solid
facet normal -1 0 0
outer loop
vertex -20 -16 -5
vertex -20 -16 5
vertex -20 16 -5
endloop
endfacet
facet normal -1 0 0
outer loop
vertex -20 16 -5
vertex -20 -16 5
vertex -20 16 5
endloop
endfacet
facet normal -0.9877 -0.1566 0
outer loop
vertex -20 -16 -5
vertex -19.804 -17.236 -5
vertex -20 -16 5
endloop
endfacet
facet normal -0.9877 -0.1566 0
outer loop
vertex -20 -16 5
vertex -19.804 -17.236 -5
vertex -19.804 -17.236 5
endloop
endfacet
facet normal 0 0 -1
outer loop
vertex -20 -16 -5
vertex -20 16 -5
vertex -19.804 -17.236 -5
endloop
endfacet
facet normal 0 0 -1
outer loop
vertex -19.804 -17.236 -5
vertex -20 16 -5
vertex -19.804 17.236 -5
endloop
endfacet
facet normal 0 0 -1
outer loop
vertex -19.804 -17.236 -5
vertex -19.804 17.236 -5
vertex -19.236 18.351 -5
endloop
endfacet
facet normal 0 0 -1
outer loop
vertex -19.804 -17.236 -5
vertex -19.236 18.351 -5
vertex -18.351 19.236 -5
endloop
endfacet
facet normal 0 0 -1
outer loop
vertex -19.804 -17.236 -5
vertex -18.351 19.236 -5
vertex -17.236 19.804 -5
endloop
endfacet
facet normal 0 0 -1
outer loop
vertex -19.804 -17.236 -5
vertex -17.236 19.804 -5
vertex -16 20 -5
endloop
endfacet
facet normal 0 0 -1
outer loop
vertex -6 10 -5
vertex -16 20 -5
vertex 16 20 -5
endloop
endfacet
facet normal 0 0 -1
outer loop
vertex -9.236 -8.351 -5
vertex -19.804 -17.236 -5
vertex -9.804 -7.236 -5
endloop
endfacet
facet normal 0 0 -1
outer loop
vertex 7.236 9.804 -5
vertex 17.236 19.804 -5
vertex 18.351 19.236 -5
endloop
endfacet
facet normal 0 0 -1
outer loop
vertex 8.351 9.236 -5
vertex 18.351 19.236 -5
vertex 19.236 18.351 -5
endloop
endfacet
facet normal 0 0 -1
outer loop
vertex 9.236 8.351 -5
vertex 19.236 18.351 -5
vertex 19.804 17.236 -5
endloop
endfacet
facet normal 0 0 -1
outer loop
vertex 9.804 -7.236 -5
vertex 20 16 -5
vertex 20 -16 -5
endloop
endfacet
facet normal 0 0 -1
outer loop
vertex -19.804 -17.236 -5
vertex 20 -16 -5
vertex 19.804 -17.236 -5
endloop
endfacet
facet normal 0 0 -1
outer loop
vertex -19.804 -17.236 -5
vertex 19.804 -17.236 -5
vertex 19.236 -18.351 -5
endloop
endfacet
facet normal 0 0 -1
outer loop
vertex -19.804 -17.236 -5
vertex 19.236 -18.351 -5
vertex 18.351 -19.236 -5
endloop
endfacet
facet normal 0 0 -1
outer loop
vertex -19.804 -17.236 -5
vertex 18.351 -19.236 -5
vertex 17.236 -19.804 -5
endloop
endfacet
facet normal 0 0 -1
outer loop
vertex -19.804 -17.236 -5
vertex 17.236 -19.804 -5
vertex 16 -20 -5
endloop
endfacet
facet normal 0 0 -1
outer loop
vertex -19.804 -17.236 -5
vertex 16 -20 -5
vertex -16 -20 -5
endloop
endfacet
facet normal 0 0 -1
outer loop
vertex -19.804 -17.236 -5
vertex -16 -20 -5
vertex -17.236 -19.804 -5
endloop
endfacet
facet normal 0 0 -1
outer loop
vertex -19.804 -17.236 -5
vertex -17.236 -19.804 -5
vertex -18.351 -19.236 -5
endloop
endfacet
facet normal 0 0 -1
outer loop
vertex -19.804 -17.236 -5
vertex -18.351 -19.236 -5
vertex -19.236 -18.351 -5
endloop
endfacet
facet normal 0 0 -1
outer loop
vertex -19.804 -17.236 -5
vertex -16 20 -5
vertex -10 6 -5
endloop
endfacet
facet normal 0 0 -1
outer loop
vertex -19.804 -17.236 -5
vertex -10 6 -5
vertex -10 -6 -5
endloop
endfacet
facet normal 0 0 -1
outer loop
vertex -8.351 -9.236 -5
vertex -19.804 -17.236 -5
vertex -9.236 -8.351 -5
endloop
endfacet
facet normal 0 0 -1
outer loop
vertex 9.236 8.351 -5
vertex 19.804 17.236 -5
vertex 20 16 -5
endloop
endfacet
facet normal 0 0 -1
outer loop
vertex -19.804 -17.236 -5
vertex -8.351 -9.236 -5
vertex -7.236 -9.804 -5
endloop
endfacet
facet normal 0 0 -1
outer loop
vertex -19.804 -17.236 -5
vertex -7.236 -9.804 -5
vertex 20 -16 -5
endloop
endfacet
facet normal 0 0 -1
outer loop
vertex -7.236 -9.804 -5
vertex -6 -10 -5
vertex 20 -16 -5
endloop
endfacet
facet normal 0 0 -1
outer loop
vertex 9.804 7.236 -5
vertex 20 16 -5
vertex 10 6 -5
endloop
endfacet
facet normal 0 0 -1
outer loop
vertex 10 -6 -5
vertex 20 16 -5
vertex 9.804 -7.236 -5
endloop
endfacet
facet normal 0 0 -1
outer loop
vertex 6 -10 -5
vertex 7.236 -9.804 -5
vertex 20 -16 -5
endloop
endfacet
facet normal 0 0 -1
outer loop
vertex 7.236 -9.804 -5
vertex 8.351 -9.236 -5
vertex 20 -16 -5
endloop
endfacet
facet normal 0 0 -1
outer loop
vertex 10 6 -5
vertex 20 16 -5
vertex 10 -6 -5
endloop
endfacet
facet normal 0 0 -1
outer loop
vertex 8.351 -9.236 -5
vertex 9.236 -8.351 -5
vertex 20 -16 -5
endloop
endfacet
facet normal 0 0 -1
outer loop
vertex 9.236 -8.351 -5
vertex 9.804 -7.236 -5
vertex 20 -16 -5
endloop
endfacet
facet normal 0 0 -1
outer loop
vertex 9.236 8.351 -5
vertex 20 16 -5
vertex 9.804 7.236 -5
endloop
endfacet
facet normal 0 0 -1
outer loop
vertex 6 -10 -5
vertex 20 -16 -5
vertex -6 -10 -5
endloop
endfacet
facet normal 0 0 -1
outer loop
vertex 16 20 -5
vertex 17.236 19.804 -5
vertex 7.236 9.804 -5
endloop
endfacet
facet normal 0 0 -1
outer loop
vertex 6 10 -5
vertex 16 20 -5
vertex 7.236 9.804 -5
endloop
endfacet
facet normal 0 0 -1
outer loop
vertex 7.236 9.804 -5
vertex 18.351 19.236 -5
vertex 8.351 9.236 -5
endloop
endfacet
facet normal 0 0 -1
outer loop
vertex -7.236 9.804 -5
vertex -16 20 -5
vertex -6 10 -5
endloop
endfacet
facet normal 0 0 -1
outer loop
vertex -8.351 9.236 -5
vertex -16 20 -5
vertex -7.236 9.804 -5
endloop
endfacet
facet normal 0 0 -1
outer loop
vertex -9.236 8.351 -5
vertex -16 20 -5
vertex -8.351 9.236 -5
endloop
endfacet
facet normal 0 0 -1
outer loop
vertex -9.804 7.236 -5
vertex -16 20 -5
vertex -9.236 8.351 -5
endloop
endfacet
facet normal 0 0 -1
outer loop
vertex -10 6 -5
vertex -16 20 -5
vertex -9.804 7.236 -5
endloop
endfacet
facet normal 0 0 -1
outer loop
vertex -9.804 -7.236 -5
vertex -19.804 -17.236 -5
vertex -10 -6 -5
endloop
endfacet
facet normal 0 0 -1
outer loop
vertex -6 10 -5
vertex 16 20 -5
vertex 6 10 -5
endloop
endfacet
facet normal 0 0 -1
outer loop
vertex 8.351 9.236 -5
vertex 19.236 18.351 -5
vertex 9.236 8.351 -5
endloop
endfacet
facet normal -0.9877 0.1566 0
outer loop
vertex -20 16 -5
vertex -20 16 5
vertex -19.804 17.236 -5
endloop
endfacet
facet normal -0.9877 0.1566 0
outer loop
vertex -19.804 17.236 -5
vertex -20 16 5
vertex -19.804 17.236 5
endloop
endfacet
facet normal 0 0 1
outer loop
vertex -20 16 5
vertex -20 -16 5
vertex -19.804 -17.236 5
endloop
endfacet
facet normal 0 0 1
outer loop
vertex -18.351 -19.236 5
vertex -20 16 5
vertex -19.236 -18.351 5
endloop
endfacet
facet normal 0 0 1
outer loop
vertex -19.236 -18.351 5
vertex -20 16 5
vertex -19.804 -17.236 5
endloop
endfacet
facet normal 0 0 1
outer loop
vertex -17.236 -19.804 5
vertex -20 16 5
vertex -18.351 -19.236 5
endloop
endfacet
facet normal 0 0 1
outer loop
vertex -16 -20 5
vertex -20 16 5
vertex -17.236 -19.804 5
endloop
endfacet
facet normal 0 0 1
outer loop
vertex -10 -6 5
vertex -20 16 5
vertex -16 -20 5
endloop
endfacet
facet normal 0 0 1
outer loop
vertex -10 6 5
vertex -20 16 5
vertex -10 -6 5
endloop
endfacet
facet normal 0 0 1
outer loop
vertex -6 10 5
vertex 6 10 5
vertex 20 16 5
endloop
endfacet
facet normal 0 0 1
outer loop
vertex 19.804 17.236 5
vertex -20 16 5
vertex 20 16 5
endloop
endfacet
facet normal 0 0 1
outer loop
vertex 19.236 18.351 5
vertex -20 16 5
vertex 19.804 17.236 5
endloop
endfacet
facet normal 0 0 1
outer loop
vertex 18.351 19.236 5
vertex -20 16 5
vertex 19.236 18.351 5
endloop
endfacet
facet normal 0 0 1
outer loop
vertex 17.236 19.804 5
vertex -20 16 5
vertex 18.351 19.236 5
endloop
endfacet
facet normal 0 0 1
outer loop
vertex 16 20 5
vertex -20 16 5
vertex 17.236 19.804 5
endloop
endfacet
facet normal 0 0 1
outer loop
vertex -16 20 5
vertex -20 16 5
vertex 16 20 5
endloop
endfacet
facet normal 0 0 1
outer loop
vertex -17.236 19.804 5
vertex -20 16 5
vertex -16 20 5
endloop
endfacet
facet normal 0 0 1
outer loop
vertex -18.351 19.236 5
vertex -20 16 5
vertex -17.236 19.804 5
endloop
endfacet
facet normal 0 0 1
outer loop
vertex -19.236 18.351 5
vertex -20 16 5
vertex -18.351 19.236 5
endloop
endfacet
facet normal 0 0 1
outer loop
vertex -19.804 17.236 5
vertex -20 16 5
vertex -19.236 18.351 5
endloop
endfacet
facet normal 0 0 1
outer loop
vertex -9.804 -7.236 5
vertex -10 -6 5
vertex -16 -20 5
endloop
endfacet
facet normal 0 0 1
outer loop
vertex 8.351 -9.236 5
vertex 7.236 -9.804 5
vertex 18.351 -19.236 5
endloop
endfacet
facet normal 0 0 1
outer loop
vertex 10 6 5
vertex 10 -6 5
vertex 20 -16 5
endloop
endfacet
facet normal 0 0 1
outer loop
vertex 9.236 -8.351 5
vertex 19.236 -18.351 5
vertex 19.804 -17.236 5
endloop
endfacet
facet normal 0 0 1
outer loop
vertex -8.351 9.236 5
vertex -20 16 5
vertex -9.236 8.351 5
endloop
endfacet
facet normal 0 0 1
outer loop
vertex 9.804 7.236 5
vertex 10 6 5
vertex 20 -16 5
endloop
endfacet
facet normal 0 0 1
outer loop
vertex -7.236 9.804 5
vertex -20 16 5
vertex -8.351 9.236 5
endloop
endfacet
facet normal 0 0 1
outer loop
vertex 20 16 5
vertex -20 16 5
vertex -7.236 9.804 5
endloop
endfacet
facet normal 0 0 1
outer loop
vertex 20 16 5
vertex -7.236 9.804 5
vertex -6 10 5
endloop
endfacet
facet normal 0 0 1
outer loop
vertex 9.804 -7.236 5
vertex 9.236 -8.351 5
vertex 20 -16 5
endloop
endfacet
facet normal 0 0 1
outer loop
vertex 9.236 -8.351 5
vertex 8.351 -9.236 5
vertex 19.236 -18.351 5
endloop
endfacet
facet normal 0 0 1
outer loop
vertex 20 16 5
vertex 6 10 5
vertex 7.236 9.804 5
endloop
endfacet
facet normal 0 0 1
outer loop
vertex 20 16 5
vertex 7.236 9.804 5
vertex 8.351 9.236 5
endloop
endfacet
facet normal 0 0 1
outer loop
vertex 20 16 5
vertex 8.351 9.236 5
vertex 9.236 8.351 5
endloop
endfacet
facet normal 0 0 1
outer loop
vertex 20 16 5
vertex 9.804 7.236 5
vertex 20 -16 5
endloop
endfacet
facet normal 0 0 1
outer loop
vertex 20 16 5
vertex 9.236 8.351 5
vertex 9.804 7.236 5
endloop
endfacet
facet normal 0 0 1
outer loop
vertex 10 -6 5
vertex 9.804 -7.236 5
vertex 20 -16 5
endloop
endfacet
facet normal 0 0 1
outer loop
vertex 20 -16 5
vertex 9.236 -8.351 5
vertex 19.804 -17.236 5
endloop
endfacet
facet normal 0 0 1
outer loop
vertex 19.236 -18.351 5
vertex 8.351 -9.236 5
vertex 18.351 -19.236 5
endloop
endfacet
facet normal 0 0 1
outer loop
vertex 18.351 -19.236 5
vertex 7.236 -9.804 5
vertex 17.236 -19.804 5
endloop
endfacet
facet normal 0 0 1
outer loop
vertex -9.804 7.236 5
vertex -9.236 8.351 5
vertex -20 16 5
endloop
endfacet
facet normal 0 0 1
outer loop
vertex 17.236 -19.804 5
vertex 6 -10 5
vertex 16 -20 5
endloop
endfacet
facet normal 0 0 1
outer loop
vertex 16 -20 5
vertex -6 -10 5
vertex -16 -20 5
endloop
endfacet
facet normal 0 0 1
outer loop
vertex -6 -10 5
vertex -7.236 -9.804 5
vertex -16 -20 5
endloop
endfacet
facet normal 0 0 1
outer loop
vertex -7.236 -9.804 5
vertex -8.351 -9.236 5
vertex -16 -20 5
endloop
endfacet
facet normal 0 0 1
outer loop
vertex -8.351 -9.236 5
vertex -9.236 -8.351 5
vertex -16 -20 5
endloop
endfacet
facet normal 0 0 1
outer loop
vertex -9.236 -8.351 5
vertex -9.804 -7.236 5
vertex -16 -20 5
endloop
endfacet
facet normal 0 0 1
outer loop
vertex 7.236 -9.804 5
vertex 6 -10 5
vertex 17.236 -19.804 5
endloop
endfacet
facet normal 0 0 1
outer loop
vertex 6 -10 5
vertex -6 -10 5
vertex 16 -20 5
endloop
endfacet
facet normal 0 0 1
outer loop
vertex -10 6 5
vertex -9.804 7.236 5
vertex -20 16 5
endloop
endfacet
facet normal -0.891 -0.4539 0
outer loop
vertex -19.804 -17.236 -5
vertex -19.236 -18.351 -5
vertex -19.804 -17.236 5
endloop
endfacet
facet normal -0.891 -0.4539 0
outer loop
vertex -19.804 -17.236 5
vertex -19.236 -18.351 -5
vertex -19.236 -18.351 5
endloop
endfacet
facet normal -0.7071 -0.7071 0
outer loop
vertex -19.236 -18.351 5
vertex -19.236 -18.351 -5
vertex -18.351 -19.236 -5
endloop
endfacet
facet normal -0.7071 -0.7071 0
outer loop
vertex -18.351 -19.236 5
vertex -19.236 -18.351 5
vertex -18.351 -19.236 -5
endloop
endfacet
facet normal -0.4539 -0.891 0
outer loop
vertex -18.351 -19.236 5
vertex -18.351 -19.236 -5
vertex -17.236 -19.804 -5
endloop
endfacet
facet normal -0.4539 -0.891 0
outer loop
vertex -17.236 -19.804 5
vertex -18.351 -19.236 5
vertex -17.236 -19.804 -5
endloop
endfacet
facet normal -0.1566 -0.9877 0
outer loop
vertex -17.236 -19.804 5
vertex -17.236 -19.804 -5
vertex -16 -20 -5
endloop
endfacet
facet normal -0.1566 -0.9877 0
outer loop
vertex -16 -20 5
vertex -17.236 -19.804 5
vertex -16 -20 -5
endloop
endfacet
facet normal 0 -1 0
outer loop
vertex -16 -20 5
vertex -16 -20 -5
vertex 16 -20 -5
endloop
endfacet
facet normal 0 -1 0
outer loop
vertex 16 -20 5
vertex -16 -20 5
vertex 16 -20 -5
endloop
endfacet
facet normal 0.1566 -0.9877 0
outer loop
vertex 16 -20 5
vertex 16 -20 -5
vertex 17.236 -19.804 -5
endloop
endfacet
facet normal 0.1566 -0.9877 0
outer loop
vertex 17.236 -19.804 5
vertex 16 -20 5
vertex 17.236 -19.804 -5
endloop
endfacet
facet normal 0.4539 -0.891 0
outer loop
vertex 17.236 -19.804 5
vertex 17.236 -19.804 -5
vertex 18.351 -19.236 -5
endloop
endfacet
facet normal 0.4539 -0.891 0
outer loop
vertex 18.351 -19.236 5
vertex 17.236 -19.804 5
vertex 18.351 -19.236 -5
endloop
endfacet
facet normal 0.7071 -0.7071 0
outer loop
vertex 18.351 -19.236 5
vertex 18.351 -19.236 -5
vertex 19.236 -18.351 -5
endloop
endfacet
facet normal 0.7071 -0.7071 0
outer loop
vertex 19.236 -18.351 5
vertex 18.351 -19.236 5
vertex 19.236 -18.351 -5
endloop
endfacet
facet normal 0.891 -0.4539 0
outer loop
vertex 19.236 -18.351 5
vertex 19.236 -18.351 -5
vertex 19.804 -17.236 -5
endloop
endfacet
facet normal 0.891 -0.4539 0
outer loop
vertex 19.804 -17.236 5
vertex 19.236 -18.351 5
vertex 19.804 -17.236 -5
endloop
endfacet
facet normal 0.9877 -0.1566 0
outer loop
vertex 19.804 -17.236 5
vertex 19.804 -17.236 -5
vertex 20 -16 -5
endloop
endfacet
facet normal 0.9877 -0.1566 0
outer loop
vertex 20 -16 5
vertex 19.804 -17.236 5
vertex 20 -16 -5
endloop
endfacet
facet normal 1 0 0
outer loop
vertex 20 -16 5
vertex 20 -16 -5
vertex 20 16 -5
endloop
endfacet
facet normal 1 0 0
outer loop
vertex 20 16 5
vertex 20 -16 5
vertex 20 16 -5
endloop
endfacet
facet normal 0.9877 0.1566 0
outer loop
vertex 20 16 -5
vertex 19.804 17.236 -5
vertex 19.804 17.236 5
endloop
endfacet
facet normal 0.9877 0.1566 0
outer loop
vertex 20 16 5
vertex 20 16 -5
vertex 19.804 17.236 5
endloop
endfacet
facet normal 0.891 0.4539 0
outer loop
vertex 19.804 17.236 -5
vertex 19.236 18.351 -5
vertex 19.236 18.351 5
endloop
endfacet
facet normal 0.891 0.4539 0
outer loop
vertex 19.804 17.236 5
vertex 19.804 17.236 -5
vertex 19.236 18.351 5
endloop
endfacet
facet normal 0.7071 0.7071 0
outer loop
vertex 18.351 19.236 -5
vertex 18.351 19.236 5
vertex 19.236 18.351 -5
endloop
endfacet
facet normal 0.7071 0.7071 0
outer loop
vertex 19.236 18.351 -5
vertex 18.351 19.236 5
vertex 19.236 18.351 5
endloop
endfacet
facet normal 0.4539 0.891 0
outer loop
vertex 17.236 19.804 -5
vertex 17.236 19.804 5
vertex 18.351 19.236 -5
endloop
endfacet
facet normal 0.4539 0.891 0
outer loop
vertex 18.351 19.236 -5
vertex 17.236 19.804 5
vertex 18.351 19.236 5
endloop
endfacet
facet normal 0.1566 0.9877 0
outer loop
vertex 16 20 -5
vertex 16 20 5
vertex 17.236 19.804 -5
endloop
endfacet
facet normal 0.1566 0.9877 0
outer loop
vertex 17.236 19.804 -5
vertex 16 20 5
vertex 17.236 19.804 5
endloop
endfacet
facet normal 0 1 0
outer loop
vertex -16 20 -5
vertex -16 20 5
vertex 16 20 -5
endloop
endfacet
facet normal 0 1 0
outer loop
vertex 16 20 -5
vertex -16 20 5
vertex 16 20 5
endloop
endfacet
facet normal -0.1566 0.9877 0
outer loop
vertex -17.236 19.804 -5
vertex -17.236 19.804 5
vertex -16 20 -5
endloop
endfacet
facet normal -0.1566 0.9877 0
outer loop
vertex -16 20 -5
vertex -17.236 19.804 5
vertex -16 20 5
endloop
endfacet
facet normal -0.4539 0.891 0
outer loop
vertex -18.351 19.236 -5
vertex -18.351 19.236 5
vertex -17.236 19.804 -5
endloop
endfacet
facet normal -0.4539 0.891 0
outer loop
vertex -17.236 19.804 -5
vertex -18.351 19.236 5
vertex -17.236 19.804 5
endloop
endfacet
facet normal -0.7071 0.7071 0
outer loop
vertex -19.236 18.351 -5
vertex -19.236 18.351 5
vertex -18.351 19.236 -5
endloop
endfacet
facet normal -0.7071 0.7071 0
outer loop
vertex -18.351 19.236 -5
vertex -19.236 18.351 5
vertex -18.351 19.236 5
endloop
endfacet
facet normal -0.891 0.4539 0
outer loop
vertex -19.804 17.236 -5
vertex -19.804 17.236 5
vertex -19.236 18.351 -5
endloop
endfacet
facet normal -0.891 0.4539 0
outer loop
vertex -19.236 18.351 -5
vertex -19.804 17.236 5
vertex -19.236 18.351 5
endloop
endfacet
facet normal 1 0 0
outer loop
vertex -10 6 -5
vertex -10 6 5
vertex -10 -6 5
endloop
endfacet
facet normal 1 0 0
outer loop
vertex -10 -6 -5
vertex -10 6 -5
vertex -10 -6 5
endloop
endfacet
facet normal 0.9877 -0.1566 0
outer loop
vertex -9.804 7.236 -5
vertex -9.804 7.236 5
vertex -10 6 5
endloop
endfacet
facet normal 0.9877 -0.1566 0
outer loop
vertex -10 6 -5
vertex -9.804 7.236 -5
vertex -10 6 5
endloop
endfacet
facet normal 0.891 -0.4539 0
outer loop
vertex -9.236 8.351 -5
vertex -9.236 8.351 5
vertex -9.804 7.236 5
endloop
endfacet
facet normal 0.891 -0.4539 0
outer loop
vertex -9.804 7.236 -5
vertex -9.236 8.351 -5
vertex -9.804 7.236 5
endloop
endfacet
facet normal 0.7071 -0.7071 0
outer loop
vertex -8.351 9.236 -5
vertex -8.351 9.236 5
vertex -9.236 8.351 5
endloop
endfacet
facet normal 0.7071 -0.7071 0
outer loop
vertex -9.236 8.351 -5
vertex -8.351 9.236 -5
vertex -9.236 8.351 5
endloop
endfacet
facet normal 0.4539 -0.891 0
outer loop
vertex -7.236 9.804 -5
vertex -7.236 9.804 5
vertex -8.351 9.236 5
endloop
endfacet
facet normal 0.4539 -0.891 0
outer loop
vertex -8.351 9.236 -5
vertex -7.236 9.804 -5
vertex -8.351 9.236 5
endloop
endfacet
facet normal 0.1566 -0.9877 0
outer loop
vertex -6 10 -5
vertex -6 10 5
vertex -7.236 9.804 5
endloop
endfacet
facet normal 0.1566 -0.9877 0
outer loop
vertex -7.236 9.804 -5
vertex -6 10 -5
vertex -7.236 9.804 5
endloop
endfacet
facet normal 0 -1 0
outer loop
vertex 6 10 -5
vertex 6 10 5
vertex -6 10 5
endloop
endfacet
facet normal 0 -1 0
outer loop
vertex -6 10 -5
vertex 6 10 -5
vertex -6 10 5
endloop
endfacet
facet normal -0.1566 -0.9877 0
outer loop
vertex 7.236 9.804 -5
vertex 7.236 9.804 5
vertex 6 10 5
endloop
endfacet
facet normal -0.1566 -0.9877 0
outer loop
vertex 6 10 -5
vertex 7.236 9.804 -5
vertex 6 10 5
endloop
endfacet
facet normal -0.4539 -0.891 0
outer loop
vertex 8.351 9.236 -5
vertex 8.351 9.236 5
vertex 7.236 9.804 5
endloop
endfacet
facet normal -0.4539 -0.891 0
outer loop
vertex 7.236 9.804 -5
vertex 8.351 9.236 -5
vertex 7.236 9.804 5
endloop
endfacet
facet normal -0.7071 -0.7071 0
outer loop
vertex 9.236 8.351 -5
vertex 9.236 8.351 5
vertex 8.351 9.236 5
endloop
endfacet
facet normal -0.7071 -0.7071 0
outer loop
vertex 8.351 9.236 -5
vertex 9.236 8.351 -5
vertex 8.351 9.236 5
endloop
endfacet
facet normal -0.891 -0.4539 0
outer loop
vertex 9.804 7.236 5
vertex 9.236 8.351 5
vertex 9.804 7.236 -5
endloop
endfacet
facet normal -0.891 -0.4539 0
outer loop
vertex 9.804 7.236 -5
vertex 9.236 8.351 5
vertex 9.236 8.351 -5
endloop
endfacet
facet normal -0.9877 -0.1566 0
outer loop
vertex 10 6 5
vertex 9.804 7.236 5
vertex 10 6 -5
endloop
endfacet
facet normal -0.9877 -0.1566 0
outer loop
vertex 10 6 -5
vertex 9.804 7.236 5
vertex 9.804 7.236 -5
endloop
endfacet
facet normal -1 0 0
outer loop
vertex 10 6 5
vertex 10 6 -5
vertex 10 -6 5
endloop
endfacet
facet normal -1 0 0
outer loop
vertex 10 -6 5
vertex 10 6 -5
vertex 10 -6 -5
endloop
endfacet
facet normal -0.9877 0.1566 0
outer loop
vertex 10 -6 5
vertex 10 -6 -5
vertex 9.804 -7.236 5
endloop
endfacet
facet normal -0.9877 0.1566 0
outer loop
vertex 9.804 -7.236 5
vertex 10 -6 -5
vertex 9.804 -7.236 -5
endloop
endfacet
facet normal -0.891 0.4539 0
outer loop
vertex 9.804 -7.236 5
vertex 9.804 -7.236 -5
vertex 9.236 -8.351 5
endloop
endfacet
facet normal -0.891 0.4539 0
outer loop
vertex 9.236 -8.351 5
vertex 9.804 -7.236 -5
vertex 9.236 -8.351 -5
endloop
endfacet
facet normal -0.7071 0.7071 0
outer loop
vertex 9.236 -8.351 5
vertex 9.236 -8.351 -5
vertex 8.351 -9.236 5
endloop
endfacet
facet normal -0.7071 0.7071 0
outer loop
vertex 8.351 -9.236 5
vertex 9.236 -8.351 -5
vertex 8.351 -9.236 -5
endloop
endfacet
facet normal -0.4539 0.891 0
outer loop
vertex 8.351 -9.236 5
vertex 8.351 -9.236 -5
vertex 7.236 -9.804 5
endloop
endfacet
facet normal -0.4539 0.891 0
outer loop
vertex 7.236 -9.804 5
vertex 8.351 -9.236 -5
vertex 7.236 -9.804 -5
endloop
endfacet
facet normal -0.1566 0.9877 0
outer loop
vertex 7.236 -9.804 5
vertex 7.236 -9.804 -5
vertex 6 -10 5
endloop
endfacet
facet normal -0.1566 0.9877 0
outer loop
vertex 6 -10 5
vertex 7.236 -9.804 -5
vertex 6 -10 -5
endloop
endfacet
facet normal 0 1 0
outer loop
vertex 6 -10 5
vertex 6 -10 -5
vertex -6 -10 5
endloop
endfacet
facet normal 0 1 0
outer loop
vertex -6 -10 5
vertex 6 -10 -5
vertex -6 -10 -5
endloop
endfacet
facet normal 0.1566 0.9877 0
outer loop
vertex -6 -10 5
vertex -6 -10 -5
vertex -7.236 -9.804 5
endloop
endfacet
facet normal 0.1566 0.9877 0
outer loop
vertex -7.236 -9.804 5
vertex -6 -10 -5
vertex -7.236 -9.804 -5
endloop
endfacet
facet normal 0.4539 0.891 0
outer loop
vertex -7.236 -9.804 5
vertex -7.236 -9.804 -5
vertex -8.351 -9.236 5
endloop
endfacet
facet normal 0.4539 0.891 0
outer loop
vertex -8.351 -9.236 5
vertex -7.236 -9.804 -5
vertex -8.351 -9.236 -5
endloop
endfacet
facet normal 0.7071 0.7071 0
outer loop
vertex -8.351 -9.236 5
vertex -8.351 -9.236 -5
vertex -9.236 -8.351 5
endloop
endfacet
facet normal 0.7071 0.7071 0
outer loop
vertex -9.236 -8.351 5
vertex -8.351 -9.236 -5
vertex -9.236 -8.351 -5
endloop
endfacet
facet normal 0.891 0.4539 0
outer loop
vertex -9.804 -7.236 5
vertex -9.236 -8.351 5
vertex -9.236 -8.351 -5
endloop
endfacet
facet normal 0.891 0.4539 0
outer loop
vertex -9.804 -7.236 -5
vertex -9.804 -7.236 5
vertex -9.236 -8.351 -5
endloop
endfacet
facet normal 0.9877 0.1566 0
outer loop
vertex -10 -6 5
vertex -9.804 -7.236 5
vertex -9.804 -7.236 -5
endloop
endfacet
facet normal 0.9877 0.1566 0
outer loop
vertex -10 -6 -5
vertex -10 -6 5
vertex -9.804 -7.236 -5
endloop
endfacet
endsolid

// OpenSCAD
// file: obiscad/bcube.scad
//------------------------------------------------------------------------------
//  Bevel edge cube.
//  (c) Juan Gonzalez-Gomez (Obijuan), Sep-2012
//------------------------------------------------------------------------------

//----------------- IMPLEMENTATION USING THE MINKOWSKI OPERATOR ----------------

//------------------------------------------------------------------------------
//-- Bevel Cube main function
//-- Parameters:
//--   * Size:  Cube size
//--   * cr : Corner radius (if cr==0, a standar cube is built)
//--   * cres:  Corner resolution (in points). cres=0 means flat corners
//------------------------------------------------------------------------------
module bcube(size,cr=0,cres=0)
{
  //-- Internal cube size
  bsize = size - 2*[cr,cr,0];

  //-- Get the (x,y) coorner coordinates in the 1st cuadrant
  x = bsize[0]/2;
  y = bsize[1]/2;

  //-- A corner radius of 0 means a standar cube!
  if (cr==0)
    cube(bsize,center=true);
  else {

      
      //-- The height of minkowski object is double. So
      //-- we sould scale by 0.5
      scale([1,1,0.5])

      //-- This translation is for centering the minkowski objet
      translate([-x, -y,0])

      //-- Built the  beveled cube with minkowski
      minkowski() {

        //-- Internal cube
        cube(bsize,center=true);

        //-- Cylinder in the corner (1st cuadrant)
        translate([x,y, 0])
          cylinder(r=cr, h=bsize[2],center=true, $fn=4*(cres+1));
      }
  }

}


//-- Examples of use of the bcube() module

//-- Standar cube
translate([-15,15,0])
bcube([20,20,10]);

//-- Beveled cube (0 point resolution)
translate([15,15,0])
  bcube([20,20,10],cr=4);

//-- Beveled cube (1 point resolution)
translate([-15,-15,0])
  bcube([20,20,10],cr=4, cres=1);

//-- Beveled cube (4 points resolution)
translate([15,-15,0])
  bcube([20,20,10],cr=4, cres=4);
// main file
//-------------------------------------------------------------------------
//-- Example of the beveled cube library (bcube)
//-------------------------------------------------------------------------

use <obiscad/bcube.scad>

//-- Set the Corner radius and resolution
cr=4;
cres=4;

//-- Build the object
difference() {
  bcube([40,40,10],cr,cres);
  bcube([20,20,12],cr,cres);
};
